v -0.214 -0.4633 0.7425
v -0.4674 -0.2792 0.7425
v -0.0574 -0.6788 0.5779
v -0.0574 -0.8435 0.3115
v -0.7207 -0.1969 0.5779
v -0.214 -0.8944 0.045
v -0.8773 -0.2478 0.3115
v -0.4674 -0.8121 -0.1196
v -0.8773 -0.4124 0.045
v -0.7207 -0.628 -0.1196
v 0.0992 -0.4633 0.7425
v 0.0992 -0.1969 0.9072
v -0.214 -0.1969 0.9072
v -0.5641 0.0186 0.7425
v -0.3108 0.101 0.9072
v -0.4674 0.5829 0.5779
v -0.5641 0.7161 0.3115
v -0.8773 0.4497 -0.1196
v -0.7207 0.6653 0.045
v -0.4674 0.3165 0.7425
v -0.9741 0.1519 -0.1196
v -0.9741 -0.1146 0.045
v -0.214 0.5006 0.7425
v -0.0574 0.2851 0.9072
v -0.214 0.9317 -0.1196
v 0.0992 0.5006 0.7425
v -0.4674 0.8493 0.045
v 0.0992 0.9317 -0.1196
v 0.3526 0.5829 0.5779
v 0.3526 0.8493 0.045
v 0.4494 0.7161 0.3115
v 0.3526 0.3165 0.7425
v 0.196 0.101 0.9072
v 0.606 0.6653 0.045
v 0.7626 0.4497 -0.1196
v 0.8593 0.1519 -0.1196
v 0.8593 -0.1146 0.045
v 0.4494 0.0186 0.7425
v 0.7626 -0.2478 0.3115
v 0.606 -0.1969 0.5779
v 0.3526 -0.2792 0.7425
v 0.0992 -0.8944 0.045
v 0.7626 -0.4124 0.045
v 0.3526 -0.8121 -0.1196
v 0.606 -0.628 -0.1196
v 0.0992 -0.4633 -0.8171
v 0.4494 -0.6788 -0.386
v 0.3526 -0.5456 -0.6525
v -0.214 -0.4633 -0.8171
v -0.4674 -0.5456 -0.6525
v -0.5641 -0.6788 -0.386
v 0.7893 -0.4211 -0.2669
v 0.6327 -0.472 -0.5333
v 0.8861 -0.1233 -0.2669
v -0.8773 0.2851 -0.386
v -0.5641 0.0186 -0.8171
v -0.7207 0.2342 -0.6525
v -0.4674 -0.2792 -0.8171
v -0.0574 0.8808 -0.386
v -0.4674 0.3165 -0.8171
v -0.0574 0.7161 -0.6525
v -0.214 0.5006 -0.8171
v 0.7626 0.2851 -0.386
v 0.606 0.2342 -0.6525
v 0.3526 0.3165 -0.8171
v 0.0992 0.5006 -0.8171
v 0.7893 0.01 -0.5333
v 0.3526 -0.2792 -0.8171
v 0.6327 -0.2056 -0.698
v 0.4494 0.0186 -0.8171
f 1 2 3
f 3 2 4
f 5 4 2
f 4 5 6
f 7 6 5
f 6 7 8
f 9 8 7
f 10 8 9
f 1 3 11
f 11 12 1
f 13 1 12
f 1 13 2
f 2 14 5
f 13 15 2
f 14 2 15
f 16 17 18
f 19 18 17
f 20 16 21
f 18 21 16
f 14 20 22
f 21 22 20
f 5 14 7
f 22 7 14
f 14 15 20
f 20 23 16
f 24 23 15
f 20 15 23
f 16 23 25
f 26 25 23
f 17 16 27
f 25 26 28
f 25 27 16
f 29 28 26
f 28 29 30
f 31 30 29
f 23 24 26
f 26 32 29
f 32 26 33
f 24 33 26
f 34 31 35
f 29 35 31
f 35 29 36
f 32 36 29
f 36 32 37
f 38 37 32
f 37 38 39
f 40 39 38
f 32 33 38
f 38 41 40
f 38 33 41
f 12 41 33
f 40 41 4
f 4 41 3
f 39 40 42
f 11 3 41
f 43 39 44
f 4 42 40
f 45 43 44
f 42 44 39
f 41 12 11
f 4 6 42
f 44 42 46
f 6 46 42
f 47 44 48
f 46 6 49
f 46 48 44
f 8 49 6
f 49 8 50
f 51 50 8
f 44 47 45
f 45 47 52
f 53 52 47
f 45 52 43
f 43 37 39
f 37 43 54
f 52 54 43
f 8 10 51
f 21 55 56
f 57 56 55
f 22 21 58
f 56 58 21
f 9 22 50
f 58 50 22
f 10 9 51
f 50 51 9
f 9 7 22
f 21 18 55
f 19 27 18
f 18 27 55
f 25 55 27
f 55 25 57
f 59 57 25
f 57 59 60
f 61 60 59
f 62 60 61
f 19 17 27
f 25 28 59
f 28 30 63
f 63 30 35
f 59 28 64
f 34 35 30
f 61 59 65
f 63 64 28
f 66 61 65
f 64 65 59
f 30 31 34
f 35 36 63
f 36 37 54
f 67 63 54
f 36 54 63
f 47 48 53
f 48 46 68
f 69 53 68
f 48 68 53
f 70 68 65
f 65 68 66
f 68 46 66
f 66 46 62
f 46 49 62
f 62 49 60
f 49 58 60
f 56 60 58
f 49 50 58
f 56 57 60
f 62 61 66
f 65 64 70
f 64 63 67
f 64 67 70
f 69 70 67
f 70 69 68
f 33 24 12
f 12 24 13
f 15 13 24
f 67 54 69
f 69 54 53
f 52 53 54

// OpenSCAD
polyhedron( points = [[-0.213982749423672, -0.463306751417275, 0.742523897485538], [-0.467360355184649, -0.27921714515994, 0.742523897485538], [-0.564141988532786, 0.0186460946421498, 0.742523897485538], [-0.467360355104414, 0.316509334418168, 0.742523897485538], [-0.213982749380402, 0.500598940579126, 0.742523897485538], [0.0992091952460986, 0.500598940551001, 0.742523897485538], [0.352586800937055, 0.316509334344543, 0.742523897485538], [0.449368434311935, 0.0186460945511425, 0.742523897485538], [0.352586800910312, -0.279217145233567, 0.742523897485538], [0.0992091952028311, -0.463306751417275, 0.742523897485538], [-0.0573867771023023, -0.678842616709787, 0.577869148150505], [-0.057386777253242, -0.843497366207113, 0.311452167325906], [0.0992091950189681, -0.894378482216194, 0.0450351864205805], [0.352586800750101, -0.812051107812425, -0.119619562980725], [0.60596440660534, -0.627961501832083, -0.119619563123917], [0.762560379118085, -0.412425636772436, 0.0450351860856655], [0.762560378841427, -0.247770886350444, 0.311452167213589], [0.605964406585311, -0.196889770563137, 0.577869148097229], [-0.213982749653674, -0.894378482110069, 0.0450351865394618], [-0.467360355390444, -0.812051107516885, -0.119619562758462], [-0.720737961065525, -0.627961501315879, -0.119619562748628], [-0.877333933304457, -0.412425636096364, 0.0450351865652093], [-0.877333933216603, -0.247770886573028, 0.31145216735773], [-0.720737960835523, -0.196889770651208, 0.577869148151946], [-0.974115566454602, -0.114562395787926, 0.0450351862868442], [-0.974115566378835, 0.151854585076388, -0.11961956307094], [-0.877333932944483, 0.449717824850467, -0.119619563058363], [-0.720737960634692, 0.665253689946058, 0.0450351863197702], [-0.564141988367154, 0.716134805695811, 0.311452167213589], [-0.467360355050823, 0.582926315263621, 0.577869148097229], [-0.467360355064831, 0.849343296023488, 0.0450351862868442], [-0.213982749341689, 0.931670670637669, -0.11961956307094], [0.0992091952848154, 0.931670670603258, -0.119619563058363], [0.352586800976643, 0.849343295933399, 0.0450351863197702], [0.449368434352932, 0.716134805545691, 0.311452167213589], [0.352586800944456, 0.58292631518045, 0.577869148097229], [0.605964406540521, 0.665253689847735, 0.0450351862868442], [0.762560378807039, 0.449717824705156, -0.11961956307094], [0.859342012662819, 0.151854583589027, -0.119619563603345], [0.859342012624907, -0.114562397133411, 0.0450351858773866], [0.44936843416844, -0.678842617539598, -0.386036543874861], [0.352586800734927, -0.545634127159732, -0.652453524731207], [0.0992091951137002, -0.463306752209073, -0.817108274109114], [-0.213982749520593, -0.463306751957339, -0.817108274000326], [-0.467360355246334, -0.545634126387845, -0.652453524545547], [-0.56414198866971, -0.678842616674416, -0.386036543623925], [-0.467360354714191, -0.279217145181905, -0.817108273970044], [-0.564141988094812, 0.0186460946096311, -0.817108274002566], [-0.720737960461804, 0.23418195972718, -0.652453524707576], [-0.877333932869643, 0.285063075482889, -0.386036543907079], [-0.467360354979921, 0.316509333963949, -0.817108273970041], [-0.213982749275986, 0.500598940152543, -0.817108274002563], [-0.0573867769804377, 0.716134805322, -0.652453524707576], [-0.0573867770152108, 0.880789554767325, -0.386036543907079], [0.0992091948525858, 0.500598940292248, -0.817108273970044], [0.352586800563621, 0.316509334113423, -0.817108274002566], [0.605964406775879, 0.234181958210504, -0.652453525210637], [0.762560379217345, 0.28506307394466, -0.386036544467467], [0.44936843430641, 0.0186460932104242, -0.817108274374716], [0.352586800787628, -0.279217146424717, -0.81710827419159], [-0.213982749131173, -0.196889770394284, 0.90717864660406], [0.099209195188766, -0.196889770511644, 0.907178646776465], [0.195990828568566, 0.100973469236775, 0.907178646776465], [-0.0573867770946213, 0.285063075411265, 0.907178646776466], [-0.310764382508906, 0.100973469288101, 0.9071786465638], [0.7893101641366, -0.421117168973182, -0.266891248397523], [0.632714191980574, -0.471998284789709, -0.533308228932352], [0.632714192038292, -0.205581304085521, -0.697962978364141], [0.789310164488681, 0.00995456087976451, -0.533308229214845], [0.886091797604529, -0.123253929431608, -0.266891248529533]], faces = [[0, 1, 23, 22, 21, 20, 19, 18, 11, 10], [0, 10, 9], [0, 9, 61, 60], [0, 60, 1], [1, 2, 23], [1, 60, 64, 2], [2, 3, 29, 28, 27, 26, 25, 24, 22, 23], [2, 64, 3], [3, 4, 29], [3, 64, 63, 4], [4, 5, 35, 34, 33, 32, 31, 30, 28, 29], [4, 63, 5], [5, 6, 35], [5, 63, 62, 6], [6, 7, 17, 16, 39, 38, 37, 36, 34, 35], [6, 62, 7], [7, 8, 17], [7, 62, 61, 8], [8, 9, 10, 11, 12, 13, 14, 15, 16, 17], [8, 61, 9], [11, 18, 12], [12, 18, 19, 45, 44, 43, 42, 41, 40, 13], [13, 40, 14], [14, 40, 66, 65], [14, 65, 15], [15, 39, 16], [15, 65, 69, 39], [19, 20, 45], [20, 21, 24, 25, 49, 48, 47, 46, 44, 45], [21, 22, 24], [25, 26, 49], [26, 27, 30, 31, 53, 52, 51, 50, 48, 49], [27, 28, 30], [31, 32, 53], [32, 33, 36, 37, 57, 56, 55, 54, 52, 53], [33, 34, 36], [37, 38, 57], [38, 39, 69], [38, 69, 68, 57], [40, 41, 66], [41, 42, 59], [41, 59, 67, 66], [42, 43, 46, 47, 50, 51, 54, 55, 58, 59], [43, 44, 46], [47, 48, 50], [51, 52, 54], [55, 56, 58], [56, 57, 68], [56, 68, 67, 58], [58, 67, 59], [60, 61, 62, 63, 64], [65, 66, 67, 68, 69]]);
